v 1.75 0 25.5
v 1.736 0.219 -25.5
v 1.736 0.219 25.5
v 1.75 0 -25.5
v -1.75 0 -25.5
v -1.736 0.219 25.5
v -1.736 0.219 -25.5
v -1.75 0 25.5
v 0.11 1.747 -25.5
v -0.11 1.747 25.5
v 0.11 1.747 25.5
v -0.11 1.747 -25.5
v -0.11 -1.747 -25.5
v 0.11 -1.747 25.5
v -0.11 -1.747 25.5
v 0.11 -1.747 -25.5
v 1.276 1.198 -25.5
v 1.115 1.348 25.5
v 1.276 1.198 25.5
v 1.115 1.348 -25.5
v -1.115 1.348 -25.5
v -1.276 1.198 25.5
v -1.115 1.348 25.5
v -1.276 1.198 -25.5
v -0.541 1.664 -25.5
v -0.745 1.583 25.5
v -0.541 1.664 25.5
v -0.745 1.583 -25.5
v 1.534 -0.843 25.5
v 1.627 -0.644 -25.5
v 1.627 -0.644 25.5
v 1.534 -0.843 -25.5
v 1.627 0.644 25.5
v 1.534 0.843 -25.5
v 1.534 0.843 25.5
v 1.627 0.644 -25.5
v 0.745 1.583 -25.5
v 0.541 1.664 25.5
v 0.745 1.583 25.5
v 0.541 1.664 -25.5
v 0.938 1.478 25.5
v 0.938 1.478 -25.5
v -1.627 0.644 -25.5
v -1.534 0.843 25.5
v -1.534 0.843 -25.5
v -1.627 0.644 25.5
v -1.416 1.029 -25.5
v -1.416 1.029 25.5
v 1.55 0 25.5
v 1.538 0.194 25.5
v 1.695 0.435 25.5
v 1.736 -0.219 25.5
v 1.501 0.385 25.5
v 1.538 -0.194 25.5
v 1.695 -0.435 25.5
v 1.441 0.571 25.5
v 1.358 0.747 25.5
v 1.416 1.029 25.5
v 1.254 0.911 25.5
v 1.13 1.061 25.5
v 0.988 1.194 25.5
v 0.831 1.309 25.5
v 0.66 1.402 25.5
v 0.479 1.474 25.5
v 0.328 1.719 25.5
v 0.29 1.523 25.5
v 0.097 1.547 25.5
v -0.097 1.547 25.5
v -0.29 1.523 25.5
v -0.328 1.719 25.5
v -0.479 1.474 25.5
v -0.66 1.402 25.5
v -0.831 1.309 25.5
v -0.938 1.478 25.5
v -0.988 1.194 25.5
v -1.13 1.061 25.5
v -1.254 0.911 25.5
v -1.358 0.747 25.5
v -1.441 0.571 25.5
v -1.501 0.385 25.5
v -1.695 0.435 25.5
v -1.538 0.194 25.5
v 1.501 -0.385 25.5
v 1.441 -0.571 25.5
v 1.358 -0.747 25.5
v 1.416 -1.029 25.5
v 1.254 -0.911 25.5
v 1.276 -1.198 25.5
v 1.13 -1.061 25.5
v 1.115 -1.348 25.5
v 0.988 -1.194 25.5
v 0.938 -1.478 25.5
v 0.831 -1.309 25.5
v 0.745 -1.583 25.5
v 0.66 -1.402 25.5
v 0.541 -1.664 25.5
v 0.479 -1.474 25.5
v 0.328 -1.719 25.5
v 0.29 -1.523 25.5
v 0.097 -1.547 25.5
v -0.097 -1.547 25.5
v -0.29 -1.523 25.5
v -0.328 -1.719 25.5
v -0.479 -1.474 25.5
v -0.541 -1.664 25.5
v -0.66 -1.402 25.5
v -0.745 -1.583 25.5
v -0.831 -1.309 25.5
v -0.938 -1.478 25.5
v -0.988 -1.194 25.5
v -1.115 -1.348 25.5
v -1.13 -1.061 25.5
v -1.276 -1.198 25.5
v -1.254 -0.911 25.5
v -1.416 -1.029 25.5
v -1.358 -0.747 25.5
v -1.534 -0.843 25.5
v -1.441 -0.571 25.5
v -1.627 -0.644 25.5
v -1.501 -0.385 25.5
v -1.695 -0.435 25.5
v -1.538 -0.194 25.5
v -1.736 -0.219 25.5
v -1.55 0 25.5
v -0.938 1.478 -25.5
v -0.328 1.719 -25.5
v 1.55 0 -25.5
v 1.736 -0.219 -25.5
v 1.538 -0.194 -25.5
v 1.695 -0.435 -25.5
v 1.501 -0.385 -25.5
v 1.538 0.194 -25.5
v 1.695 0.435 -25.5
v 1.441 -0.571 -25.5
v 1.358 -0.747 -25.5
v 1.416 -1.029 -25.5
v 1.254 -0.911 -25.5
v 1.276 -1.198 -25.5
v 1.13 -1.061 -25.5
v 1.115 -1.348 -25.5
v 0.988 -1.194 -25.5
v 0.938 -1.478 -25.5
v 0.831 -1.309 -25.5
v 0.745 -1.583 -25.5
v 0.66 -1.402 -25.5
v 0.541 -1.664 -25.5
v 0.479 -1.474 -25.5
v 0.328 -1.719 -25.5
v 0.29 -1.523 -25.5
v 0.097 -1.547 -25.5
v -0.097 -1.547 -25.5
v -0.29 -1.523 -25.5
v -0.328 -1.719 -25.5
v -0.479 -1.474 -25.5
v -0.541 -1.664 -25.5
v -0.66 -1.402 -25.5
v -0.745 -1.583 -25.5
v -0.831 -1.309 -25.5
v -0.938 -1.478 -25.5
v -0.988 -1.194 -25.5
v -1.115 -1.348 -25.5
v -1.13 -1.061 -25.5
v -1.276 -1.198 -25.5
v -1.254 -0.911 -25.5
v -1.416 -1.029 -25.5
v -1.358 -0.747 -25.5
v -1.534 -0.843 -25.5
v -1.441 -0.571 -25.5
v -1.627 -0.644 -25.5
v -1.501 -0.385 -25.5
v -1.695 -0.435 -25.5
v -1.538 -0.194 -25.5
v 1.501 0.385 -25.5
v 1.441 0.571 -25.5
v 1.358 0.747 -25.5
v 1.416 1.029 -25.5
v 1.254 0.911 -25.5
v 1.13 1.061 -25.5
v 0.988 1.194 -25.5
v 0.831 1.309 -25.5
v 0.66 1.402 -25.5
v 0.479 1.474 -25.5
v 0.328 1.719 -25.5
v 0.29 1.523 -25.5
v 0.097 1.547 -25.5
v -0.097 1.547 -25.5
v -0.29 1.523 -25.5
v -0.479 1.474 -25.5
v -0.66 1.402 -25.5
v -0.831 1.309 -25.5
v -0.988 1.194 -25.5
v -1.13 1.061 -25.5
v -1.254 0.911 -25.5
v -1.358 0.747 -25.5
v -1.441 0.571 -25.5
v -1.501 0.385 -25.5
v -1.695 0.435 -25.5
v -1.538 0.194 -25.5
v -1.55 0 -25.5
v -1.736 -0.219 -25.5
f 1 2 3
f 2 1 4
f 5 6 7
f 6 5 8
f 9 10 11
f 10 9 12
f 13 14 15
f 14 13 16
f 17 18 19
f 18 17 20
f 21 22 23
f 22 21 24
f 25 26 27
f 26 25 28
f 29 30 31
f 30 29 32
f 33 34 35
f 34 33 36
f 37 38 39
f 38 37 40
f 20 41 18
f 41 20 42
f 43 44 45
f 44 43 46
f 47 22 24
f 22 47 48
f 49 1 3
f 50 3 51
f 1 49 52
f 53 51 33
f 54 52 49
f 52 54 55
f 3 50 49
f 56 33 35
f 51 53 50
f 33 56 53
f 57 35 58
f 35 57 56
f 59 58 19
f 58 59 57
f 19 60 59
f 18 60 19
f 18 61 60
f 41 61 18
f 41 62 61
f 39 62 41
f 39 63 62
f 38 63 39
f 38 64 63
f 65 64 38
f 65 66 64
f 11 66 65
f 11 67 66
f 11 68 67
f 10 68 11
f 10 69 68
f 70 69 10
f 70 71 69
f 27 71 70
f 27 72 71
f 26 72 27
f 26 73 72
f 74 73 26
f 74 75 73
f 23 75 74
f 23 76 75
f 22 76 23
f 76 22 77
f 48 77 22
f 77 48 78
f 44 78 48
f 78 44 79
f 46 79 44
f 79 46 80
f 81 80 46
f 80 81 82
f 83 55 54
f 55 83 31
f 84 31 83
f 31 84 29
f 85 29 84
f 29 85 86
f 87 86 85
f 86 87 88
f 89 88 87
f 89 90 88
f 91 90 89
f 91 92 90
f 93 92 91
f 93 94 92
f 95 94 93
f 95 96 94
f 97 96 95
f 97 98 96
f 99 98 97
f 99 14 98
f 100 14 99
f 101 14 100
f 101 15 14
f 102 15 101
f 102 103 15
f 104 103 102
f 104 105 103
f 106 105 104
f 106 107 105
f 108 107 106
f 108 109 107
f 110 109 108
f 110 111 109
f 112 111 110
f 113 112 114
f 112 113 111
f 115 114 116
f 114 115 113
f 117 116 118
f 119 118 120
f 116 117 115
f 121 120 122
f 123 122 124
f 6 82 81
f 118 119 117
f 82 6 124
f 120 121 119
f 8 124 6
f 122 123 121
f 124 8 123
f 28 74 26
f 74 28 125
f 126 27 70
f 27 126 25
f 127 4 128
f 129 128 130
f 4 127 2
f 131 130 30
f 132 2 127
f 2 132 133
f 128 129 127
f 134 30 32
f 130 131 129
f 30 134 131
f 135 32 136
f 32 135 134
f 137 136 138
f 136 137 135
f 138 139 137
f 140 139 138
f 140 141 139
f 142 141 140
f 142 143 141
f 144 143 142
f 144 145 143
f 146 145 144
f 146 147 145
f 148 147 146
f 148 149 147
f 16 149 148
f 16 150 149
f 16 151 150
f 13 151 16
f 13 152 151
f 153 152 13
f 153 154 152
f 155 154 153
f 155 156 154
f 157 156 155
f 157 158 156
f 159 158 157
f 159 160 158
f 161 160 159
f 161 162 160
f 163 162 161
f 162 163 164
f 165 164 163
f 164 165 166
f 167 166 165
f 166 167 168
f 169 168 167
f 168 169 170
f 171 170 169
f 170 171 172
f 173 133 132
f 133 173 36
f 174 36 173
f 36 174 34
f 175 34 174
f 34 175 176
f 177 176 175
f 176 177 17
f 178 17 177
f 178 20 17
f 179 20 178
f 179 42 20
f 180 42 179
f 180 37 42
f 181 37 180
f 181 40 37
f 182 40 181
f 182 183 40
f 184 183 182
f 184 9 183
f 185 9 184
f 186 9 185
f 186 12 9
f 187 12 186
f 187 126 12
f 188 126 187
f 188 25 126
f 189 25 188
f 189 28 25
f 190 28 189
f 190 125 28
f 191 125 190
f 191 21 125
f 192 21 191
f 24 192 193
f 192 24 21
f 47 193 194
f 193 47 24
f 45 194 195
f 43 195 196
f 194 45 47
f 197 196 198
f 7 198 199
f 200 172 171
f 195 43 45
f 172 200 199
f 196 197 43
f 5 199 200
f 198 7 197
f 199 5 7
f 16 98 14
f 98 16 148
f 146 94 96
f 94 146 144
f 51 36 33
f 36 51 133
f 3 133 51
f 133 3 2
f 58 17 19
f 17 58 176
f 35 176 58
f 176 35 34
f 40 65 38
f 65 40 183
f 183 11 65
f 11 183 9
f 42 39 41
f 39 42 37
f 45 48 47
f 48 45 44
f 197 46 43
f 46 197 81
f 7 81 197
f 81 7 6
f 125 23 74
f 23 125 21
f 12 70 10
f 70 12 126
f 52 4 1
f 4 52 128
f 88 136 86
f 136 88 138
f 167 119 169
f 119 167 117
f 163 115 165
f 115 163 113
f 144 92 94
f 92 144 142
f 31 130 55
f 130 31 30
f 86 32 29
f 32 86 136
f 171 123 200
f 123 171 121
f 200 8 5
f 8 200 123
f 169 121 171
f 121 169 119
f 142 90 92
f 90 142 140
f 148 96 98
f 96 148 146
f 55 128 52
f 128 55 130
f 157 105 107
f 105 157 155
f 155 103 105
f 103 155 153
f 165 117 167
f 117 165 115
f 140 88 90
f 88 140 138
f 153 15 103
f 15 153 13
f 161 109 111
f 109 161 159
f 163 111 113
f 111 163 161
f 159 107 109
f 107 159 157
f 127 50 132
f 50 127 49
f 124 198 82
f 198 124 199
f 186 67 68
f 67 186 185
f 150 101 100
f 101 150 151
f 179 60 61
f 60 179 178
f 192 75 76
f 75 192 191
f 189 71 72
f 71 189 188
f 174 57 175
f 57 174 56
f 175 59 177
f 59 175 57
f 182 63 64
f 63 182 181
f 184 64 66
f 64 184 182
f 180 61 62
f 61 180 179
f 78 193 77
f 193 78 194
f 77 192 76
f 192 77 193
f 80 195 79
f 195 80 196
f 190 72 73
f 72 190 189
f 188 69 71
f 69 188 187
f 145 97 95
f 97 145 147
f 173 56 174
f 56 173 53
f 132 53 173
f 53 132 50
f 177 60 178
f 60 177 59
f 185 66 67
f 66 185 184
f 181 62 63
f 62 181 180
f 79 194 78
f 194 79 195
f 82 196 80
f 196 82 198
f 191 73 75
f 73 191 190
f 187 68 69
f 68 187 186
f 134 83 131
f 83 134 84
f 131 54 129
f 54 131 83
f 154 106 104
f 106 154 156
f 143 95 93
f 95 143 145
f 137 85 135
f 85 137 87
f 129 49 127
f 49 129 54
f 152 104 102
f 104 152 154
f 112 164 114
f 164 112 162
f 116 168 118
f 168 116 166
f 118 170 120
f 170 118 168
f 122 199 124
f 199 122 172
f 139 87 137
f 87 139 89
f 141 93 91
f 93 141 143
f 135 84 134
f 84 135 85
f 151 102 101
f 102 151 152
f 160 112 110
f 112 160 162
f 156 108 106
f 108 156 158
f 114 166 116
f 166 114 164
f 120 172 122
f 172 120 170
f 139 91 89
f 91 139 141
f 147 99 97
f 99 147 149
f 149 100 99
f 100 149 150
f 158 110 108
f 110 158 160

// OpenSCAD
$fn = 50;


difference() {
	union() {
		translate(v = [0, 0, -25.5000000000]) {
			cylinder(h = 51, r = 1.7500000000);
		}
	}
	union() {
		translate(v = [0, 0, -100.0000000000]) {
			cylinder(h = 200, r = 1.5500000000);
		}
	}
}
